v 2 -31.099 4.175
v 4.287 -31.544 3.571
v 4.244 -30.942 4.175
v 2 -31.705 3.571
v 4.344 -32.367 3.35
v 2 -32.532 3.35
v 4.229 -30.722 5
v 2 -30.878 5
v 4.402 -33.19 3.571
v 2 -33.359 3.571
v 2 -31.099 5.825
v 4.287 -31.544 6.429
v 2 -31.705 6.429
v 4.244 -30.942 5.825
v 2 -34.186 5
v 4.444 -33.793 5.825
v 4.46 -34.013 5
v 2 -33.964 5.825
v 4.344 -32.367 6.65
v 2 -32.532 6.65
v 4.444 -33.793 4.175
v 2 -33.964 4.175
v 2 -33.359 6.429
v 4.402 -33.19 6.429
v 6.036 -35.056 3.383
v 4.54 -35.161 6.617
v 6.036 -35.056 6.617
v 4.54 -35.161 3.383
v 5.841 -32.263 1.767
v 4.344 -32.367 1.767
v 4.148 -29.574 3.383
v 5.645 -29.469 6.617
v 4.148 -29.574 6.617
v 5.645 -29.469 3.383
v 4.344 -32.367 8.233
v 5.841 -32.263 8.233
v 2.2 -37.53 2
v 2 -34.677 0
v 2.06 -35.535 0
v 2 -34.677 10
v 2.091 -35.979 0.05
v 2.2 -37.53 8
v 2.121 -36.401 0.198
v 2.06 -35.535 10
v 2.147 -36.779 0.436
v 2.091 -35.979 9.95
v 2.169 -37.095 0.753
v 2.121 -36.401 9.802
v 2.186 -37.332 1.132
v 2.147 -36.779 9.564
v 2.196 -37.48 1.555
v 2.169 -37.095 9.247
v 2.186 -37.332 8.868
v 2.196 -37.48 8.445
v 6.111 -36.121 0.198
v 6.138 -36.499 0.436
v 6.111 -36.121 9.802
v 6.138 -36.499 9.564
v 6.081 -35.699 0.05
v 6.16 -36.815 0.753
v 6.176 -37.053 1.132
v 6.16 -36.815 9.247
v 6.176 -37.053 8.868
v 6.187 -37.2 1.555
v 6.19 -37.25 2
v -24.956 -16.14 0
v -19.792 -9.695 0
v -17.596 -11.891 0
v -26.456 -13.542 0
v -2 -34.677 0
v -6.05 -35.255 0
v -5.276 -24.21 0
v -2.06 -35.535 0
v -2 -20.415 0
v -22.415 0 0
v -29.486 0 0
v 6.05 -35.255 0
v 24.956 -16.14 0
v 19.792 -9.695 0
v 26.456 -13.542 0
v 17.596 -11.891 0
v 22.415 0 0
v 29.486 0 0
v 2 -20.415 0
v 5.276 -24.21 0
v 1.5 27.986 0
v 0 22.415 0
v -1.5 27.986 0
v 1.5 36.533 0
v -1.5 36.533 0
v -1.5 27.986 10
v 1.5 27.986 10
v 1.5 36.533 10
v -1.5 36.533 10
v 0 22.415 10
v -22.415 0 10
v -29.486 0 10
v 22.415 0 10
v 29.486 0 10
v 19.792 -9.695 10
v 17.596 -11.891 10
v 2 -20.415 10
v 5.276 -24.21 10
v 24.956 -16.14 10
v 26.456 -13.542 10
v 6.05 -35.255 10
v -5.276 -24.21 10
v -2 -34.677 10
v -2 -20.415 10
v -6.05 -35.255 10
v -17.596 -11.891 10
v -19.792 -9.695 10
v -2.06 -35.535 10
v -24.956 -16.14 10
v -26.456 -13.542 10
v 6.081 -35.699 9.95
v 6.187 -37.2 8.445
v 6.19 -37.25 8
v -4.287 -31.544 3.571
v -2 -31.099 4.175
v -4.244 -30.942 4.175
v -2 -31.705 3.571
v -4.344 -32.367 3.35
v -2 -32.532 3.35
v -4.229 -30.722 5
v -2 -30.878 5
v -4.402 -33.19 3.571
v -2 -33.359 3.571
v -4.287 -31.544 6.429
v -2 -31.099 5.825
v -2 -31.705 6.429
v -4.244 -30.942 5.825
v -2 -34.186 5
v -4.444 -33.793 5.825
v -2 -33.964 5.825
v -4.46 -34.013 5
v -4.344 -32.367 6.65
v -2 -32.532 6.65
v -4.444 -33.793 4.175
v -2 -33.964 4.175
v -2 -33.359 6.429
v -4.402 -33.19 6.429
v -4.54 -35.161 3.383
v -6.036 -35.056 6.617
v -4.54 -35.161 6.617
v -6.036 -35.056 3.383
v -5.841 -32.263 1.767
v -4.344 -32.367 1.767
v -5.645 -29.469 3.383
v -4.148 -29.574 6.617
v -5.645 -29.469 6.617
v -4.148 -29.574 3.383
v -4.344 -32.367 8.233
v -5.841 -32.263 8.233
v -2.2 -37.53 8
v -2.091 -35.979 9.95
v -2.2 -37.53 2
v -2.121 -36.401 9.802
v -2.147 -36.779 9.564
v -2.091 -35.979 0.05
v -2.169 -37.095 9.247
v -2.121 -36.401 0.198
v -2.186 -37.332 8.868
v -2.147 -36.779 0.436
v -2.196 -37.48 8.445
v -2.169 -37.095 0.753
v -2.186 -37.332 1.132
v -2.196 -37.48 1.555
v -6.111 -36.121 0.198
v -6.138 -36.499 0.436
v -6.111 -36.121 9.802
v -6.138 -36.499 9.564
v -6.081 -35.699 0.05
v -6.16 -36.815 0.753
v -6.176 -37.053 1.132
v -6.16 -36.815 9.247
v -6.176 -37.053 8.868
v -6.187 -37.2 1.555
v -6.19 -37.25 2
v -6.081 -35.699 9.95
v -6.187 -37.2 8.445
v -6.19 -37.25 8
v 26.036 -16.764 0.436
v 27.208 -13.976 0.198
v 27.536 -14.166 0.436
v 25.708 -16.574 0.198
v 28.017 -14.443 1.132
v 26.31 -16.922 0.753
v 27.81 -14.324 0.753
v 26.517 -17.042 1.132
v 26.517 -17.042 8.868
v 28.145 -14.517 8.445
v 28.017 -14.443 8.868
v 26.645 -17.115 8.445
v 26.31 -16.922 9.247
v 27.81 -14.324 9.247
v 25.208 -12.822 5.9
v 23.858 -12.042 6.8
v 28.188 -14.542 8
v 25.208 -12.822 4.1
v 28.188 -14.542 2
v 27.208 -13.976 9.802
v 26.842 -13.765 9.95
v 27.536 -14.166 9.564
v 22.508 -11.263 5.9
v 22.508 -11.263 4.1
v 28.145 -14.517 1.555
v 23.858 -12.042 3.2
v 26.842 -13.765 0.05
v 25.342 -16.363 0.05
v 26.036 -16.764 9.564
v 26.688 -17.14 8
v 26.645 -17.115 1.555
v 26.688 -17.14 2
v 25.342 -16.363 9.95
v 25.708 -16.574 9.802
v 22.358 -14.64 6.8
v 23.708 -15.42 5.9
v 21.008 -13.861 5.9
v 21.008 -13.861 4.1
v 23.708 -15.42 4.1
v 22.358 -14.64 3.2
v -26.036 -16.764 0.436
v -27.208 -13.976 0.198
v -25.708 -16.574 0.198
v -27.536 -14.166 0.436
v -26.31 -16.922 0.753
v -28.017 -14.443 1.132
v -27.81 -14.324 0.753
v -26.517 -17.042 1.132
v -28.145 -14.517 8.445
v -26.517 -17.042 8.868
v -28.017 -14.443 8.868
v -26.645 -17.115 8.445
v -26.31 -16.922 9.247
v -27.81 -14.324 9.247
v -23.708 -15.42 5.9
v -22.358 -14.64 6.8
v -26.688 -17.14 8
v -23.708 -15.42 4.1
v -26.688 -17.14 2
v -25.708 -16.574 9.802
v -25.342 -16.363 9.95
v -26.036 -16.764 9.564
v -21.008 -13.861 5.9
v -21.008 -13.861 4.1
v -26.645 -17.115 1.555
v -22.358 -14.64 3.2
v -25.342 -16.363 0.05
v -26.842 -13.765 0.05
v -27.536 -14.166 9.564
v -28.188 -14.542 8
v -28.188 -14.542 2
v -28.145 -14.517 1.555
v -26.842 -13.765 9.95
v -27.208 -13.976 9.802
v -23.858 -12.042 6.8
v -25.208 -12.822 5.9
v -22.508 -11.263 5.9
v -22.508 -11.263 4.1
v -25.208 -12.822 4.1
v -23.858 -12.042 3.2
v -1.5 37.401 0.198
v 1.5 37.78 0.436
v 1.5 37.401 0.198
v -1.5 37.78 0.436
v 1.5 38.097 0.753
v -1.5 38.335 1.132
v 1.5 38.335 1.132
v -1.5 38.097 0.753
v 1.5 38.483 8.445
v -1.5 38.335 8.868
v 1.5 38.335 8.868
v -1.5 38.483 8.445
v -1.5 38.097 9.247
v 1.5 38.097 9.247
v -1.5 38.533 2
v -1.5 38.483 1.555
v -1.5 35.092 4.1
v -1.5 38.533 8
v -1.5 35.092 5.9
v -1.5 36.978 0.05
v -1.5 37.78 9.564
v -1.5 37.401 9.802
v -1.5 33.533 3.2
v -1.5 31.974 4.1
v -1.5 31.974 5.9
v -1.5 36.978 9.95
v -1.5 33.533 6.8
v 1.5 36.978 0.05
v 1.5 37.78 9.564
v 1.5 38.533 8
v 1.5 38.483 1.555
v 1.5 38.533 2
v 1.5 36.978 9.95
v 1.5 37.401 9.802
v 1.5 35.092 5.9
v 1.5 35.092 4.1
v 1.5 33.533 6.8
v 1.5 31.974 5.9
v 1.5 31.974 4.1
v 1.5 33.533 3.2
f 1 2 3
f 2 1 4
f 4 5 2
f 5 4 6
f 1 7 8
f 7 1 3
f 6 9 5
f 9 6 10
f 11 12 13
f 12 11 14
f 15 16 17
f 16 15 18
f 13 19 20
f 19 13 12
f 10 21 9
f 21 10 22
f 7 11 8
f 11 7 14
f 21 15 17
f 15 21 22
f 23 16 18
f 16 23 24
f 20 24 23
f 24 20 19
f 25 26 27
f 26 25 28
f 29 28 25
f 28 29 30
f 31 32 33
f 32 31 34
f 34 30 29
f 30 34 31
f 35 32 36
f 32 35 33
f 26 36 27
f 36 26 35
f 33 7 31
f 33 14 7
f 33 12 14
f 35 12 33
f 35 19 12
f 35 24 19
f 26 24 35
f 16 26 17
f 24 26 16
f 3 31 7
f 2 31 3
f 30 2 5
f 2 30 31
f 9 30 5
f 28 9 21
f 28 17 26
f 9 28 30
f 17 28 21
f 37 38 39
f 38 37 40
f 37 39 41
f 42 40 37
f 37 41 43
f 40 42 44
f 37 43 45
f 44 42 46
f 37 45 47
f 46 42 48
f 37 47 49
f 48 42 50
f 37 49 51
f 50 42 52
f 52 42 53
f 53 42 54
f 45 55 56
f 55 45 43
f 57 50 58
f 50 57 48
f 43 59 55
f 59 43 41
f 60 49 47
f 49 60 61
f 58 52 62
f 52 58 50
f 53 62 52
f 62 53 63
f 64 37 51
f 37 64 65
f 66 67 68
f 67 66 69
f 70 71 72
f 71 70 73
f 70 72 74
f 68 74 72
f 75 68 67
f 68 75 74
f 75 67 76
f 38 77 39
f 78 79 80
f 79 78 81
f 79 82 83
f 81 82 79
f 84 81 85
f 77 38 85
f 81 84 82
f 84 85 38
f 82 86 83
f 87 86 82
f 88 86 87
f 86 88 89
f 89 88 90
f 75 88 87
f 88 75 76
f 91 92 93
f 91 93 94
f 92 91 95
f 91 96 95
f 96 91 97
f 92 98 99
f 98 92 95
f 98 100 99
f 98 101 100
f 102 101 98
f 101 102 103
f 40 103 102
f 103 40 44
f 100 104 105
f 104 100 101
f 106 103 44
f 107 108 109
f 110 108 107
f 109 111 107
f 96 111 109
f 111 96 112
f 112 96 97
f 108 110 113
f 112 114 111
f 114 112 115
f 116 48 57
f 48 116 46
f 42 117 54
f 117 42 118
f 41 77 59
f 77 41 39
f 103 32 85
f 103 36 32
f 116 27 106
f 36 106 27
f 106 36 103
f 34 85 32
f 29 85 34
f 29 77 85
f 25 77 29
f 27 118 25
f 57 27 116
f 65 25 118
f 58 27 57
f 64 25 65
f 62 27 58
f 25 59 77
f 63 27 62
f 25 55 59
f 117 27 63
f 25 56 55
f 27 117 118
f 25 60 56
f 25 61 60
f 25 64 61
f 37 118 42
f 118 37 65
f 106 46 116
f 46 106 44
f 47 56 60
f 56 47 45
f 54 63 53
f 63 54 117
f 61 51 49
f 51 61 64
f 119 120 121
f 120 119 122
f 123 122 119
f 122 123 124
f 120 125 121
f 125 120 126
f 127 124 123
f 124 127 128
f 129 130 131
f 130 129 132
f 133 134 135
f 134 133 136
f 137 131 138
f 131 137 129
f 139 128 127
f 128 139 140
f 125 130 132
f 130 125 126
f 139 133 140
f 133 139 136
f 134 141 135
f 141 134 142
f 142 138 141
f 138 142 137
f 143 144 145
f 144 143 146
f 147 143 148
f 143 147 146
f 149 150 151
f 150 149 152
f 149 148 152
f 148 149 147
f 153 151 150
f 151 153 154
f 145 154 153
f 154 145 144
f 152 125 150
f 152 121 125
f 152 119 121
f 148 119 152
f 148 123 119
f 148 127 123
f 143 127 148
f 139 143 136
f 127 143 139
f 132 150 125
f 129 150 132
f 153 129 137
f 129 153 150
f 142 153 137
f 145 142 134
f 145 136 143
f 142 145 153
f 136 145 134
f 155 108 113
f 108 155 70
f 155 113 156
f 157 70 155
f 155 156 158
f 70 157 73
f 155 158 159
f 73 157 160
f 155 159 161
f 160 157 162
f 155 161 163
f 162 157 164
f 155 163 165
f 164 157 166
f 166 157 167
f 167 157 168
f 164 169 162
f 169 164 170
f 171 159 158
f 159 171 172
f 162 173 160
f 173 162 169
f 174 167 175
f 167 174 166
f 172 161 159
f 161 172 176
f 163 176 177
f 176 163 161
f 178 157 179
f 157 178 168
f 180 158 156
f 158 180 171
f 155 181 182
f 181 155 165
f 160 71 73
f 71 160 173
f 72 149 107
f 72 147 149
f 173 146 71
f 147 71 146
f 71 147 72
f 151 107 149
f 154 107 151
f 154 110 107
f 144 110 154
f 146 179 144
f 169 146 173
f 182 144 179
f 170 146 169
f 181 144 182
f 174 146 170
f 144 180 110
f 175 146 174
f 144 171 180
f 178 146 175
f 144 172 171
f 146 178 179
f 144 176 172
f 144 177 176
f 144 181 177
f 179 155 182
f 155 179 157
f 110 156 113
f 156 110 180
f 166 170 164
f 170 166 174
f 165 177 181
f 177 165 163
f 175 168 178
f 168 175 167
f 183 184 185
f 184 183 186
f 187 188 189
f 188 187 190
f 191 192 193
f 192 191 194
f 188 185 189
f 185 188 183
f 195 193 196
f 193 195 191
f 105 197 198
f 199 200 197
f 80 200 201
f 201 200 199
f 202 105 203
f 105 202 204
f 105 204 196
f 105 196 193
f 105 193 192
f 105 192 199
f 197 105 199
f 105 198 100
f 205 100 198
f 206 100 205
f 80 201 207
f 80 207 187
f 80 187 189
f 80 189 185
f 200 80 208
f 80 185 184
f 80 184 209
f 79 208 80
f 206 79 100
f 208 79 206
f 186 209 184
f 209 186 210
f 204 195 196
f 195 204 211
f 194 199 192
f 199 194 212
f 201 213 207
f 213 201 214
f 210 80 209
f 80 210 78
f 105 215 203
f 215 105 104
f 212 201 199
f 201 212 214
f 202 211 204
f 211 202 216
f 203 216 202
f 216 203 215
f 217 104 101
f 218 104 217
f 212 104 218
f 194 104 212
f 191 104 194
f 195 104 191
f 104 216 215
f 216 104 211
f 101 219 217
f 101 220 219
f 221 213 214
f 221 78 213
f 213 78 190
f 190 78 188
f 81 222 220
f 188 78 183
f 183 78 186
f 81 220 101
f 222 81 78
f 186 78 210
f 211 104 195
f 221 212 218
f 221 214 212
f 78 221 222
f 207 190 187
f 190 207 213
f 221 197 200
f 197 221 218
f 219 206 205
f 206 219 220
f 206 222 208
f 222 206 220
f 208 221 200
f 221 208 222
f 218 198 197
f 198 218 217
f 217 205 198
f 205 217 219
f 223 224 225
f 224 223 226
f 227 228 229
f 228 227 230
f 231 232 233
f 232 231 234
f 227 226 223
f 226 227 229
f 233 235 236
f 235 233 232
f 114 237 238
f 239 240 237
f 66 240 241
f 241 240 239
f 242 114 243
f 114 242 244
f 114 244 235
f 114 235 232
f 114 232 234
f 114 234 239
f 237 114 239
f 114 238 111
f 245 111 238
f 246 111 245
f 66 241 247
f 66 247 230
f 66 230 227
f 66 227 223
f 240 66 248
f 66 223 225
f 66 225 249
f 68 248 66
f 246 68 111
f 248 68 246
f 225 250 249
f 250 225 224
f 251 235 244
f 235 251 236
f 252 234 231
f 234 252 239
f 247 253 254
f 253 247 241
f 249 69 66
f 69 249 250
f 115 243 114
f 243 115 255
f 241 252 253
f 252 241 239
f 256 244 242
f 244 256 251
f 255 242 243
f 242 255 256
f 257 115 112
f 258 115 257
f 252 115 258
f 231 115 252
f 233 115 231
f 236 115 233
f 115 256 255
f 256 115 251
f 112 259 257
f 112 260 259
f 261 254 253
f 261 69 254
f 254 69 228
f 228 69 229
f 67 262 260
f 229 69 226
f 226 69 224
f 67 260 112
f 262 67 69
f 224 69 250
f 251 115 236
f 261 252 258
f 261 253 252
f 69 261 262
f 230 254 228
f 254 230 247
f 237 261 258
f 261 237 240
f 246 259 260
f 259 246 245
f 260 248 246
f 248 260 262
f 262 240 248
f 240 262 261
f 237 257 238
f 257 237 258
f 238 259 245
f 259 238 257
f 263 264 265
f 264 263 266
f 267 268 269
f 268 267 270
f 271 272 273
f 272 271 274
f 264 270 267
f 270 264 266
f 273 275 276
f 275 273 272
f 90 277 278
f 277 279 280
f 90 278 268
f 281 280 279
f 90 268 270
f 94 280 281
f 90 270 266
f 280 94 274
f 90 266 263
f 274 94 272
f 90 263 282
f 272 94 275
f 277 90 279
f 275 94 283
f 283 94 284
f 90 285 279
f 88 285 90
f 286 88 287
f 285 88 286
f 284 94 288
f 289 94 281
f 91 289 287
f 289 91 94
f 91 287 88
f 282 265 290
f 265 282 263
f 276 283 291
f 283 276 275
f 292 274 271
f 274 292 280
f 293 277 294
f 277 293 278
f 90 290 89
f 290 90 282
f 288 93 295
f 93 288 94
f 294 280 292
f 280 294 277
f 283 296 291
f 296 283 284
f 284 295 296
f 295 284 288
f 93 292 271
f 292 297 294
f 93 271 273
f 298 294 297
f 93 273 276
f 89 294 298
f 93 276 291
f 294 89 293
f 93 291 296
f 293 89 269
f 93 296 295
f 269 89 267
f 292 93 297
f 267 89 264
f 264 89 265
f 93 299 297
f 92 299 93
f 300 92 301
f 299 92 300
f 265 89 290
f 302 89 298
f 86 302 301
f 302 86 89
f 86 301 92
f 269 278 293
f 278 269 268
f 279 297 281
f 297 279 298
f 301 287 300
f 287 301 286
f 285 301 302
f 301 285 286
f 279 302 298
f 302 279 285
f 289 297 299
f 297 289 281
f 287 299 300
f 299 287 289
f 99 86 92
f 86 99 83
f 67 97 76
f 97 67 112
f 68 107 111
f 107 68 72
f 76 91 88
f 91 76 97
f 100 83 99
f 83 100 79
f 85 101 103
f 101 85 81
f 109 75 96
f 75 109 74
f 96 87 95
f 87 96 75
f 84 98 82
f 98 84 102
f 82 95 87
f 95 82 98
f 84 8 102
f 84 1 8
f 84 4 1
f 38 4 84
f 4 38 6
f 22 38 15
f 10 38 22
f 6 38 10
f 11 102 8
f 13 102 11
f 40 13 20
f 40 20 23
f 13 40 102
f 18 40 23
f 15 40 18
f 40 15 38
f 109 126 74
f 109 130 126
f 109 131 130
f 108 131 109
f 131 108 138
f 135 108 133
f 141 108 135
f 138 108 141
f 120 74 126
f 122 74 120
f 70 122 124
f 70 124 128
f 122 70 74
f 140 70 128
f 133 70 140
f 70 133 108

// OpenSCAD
// file: lib/sweep.scad
// sweep.scad
//
// This code is copied from
// https://github.com/openscad/list-comprehension-demos
// and
// https://github.com/openscad/scad-utils
// to make hangprinter repo self-contained
// It was included in order to make the worm drive parametric
// In future OpenSCAD (or other script CAD programs)
// worm drives should be will be more easily constructed without
// this user space defined sweep operation.
// See OpenSCAD discussion at:
// https://github.com/openscad/openscad/issues/114

// Look into files
// lists.scad
// X transformations.scad
// linalg.scad
// se3.scad
// so3.scad


// Include modules and fcts:

/// linalg.scad
function vec3(p) = len(p) < 3 ? concat(p,0) : p;
function vec4(p) = let (v3=vec3(p)) len(v3) < 4 ? concat(v3,1) : v3;
function take3(v) = [v[0],v[1],v[2]];
function tail3(v) = [v[3],v[4],v[5]];
function construct_Rt(R,t) = [concat(R[0],t[0]),concat(R[1],t[1]),concat(R[2],t[2]),[0,0,0,1]];

/// so3.scad

function se3_exp_2(t,w) = se3_exp_2_0(t,w,w*w);
function se3_exp_2_0(t,w,theta_sq) =
se3_exp_23(
	so3_exp_2(theta_sq),
	C = (1.0 - theta_sq/20) / 6,
	t=t,w=w);

// Taylor series expansions close to 0
function so3_exp_1(theta_sq) = [
	1 - 1/6*theta_sq,
	0.5
];

function rodrigues_so3_exp(w, A, B) = [
  [1.0 - B*(w[1]*w[1] + w[2]*w[2]), B*(w[0]*w[1]) - A*w[2],          B*(w[0]*w[2]) + A*w[1]],
  [B*(w[0]*w[1]) + A*w[2],          1.0 - B*(w[0]*w[0] + w[2]*w[2]), B*(w[1]*w[2]) - A*w[0]],
  [B*(w[0]*w[2]) - A*w[1],          B*(w[1]*w[2]) + A*w[0],          1.0 - B*(w[0]*w[0] + w[1]*w[1])]
];

function so3_exp_3_0(theta_deg, inv_theta) = [
	sin(theta_deg) * inv_theta,
	(1 - cos(theta_deg)) * (inv_theta * inv_theta)
];

/// se3.scad
function combine_se3_exp(w, ABt) = construct_Rt(rodrigues_so3_exp(w, ABt[0], ABt[1]), ABt[2]);
function se3_exp_1(t,w) = concat(
	so3_exp_1(w*w),
	[t + 0.5 * cross(w,t)]
);

function se3_exp_3(t,w) = se3_exp_3_0(t,w,sqrt(w*w)*180/PI,1/sqrt(w*w));

function se3_exp_23(AB,C,t,w) =
[AB[0], AB[1], t + AB[1] * cross(w,t) + C * cross(w,cross(w,t)) ];

function se3_exp_3_0(t,w,theta_deg,inv_theta) =
se3_exp_23(
	so3_exp_3_0(theta_deg = theta_deg, inv_theta = inv_theta),
	C = (1 - sin(theta_deg) * inv_theta) * (inv_theta * inv_theta),
t=t,w=w);

function se3_exp(mu) = se3_exp_0(t=take3(mu),w=tail3(mu)/180*PI);

function se3_exp_0(t,w) =
combine_se3_exp(w,
// Evaluate by Taylor expansion when near 0
	w*w < 1e-8
	? se3_exp_1(t,w)
	: w*w < 1e-6
	  ? se3_exp_2(t,w)
	  : se3_exp_3(t,w)
);


/// lists.scad
/*!
  Flattens a list one level:

  flatten([[0,1],[2,3]]) => [0,1,2,3]
*/
function flatten(list) = [ for (i = list, v = i) v ];
/*!
  Extracts a subarray from index begin (inclusive) to end (exclusive)

  subarray([1,2,3,4], 1, 2) => [2,3]
*/
function subarray(list,begin=0,end=-1) = [
    let(end = end < 0 ? len(list) : end)
      for (i = [begin : 1 : end-1])
        list[i]
];

/// transformations.scad
//********* Create modifying matrices ***************//
/*!
  Creates a rotation matrix

  xyz = euler angles = rz * ry * rx
  axis = rotation_axis * rotation_angle
*/
function rotation(xyz=undef, axis=undef) =
	xyz != undef && axis != undef ? undef :
	xyz == undef  ? se3_exp([0,0,0,axis[0],axis[1],axis[2]]) :
	len(xyz) == undef ? rotation(axis=[0,0,xyz]) :
	(len(xyz) >= 3 ? rotation(axis=[0,0,xyz[2]]) : identity4()) *
	(len(xyz) >= 2 ? rotation(axis=[0,xyz[1],0]) : identity4()) *
(len(xyz) >= 1 ? rotation(axis=[xyz[0],0,0]) : identity4());

/*!
  Creates a scaling matrix
*/
function scaling(v) = [
	[v[0],0,0,0],
	[0,v[1],0,0],
	[0,0,v[2],0],
	[0,0,0,1],
];

/*!
  Creates a translation matrix
*/
function translation(v) = [
	[1,0,0,v[0]],
	[0,1,0,v[1]],
	[0,0,1,v[2]],
	[0,0,0,1],
];


function project(x) = subarray(x,end=len(x)-1) / x[len(x)-1];

function transform(m, list) = [for (p=list) project(m * vec4(p))];

function to_3d(list) = [ for(v = list) vec3(v) ];

module sweep(shape, path_transforms, closed=false) {

    pathlen = len(path_transforms);
    segments = pathlen + (closed ? 0 : -1);
    shape3d = to_3d(shape);

    function sweep_points() =
      flatten([for (i=[0:pathlen-1])
        transform(path_transforms[i], shape3d)]);

    function loop_faces() = [let (facets=len(shape3d))
        for(s=[0:segments-1], i=[0:facets-1])
          [(s%pathlen) * facets + i,
           (s%pathlen) * facets + (i + 1) % facets,
           ((s + 1) % pathlen) * facets + (i + 1) % facets,
           ((s + 1) % pathlen) * facets + i]];

    bottom_cap = closed ? [] : [[for (i=[len(shape3d)-1:-1:0]) i]];
    top_cap = closed ? [] : [
      [for (i=[0:len(shape3d)-1])
        i+len(shape3d)*(pathlen-1)]];
    polyhedron(points = sweep_points(),
               faces  = concat(loop_faces(),
                               bottom_cap,
                               top_cap),
               convexity=5);
}
// file: ram_1000_3dpotter.scad
include <lib/parameters.scad>
use <lib/util.scad>

ram_1000_3dpotter();
module ram_1000_3dpotter(){
  lift_tube = 60;
  tube_height = 325;
  tube_inner_d = Ram_1000_3dpotter_tube_inner_d;
  tube_outer_d = Ram_1000_3dpotter_tube_outer_d;
  translate([0,0,lift_tube])
    color([0.9,0.9,0.9], 0.4)
      difference(){
        cylinder(d = tube_outer_d, h=tube_height, $fn=10*4);
        translate([0,0,-1])
          cylinder(d = tube_inner_d, h= tube_height+2, $fn=10*4);
      }

  color([0.15,0.15,0.15])
    difference(){
      translate([0,0,lift_tube-36])
        cylinder(d=70, h=36);
      end_r = 35.7/2;
      circle_r = 47;
      translate([0,0,lift_tube-36])
        rotate_extrude()
          translate([circle_r+end_r,0])
            circle(r=circle_r);
    }

  color([0.93,0.1,0.1])
    cylinder(d1 = 6, d2 = 19, h = 24);

  shim_height = 17;
  color([0.15,0.15,0.15])
    translate([0,0,tube_height + lift_tube])
      cylinder(d = tube_outer_d + 3, h = shim_height);

  color([0.5,0.5,0.5])
    translate([-80/2, -80/2, lift_tube + tube_height + shim_height])
      cube([80, 97, Nema23_cube_width]);
  translate([-Nema23_cube_height-80/2, 97-80/2-Nema23_cube_width/2, lift_tube + tube_height + shim_height + Nema23_cube_width/2])
    rotate([0,90,0])
      Nema23();

  topshim_height = 10;
  color([0.6,0.6,0.6])
    translate([0,0,lift_tube + tube_height + shim_height + Nema23_cube_width])
      cylinder(d=62, h=topshim_height);
  w = Ram_1000_3dpotter_top_square_width;
  color([0.6,0.6,0.6])
    rotate([0,0,45])
      translate([-w/2, -w/2, lift_tube + tube_height + shim_height + Nema23_cube_width])
        cube([w, w, 300]);

}
// file: lib/parameters.scad
// Parameters shared between modules
Base_th = 2;
Beam_width = 15;
Wiggle = 0.25;
Fat_beam_width = Beam_width + Wiggle;
Beam_length = 400;
Wall_th = 2.5;
Min_beam_width = 12.5;
Max_beam_width = 17.5;
Zip_th = 2;
Zip_h = Zip_th + Max_beam_width - Min_beam_width;
Zip_w = 5.0;
Nema17_cube_width          = 42.43;
Nema17_screw_hole_width    = 43.74; // Opposite corner screws
Nema17_ring_diameter       = 22;
Nema17_cube_height         = 39.36;
Nema17_shaft_height        = 63.65;
Nema17_ring_height         = 2;
Nema17_shaft_radius        = 5/2;

Nema23_cube_width          = 56.4;
Nema23_cube_height         = 54.5;
Nema23_shaft_height        = 100;
Nema23_screw_hole_width    = 66.31; // Opposite corner screws
b608_outer_dia = 22.2;
b608_width = 7.05;
b608_bore_r = 4;
b608_vgroove_big_r = b608_outer_dia/2 + 2.5;
b608_vgroove_small_r = b608_outer_dia/2 + 0.5;
b608_ugroove_big_r = b608_vgroove_big_r;
b608_ugroove_small_r = b608_vgroove_small_r;
Gap_between_sandwich_and_plate = 1.5 + Base_th; // 1.5 mm for wiggle
Motor_bracket_flerp_r = 6;
Motor_bracket_flerp = 14;
Motor_bracket_cw = Nema17_cube_width + 6;
Motor_bracket_att_ang = 50;
Mounting_screw_d = 3.5;
Mounting_screw_head_d = 14;
Spool_outer_wall_th = 4;

// Corner clamp parameters
Cc_l1 = (Fat_beam_width+2*Wall_th)*2*sqrt(3);
Cc_rad_b = 4;
Cc_action_point_from_mid = Cc_l1/sqrt(3)-2*Cc_rad_b-7;
Cc_plastic_length = sqrt(Cc_action_point_from_mid*Cc_action_point_from_mid
                       - (Cc_action_point_from_mid/2)*(Cc_action_point_from_mid/2));
Eyelet_extra_dist = 0.75;
Eyelet_diameter = 4.30;
Move_d_bearings_inwards = -2;

// The distance between the two action points on the mover
Sidelength = Beam_length + 2*Cc_plastic_length;

/////// Gear parameters ////////////
Circular_pitch = 262;
Motor_teeth = 10;
Gear_height = 21.4-3;
Motor_pitch                      = (Motor_teeth*Circular_pitch/360);
Motor_pitch_diametrial           = Motor_teeth/(2*Motor_pitch);
Motor_outer_radius               = Motor_pitch + 1/Motor_pitch_diametrial;
Spool_teeth = 100;
Spool_r = 75;
Spool_height = 8;
Spool_pitch                      = (Spool_teeth*Circular_pitch/360);
Spool_pitch_diametrial           = Spool_teeth/(2*Spool_pitch);
Spool_outer_radius               = Spool_pitch + 1/Spool_pitch_diametrial;
Sep_disc_radius = (161.83+1)/2; // Made to match 255 teeth gt2 pulley + 1
Motor_bracket_depth = Gear_height+1+7+Nema17_ring_height+1+Gap_between_sandwich_and_plate;
Spool_core_flerp0 = 16+3;

/////// Lineroller parameters ////////////
b623_width  = 4;
b623_bore_r = 3/2;
b623_big_ugroove_big_r = (12+3)/2;
b623_big_ugroove_small_r = (10+3)/2;
b623_outer_dia = 10;
b623_ugroove_room_to_grow_r = 1.1;
b608_ugroove_room_to_grow_r = 1.1;
b623_flange_dia = 11.5;
b623_flange_room_to_grow_r = 0.5;

Depth_of_roller_base = 18;
Roller_flerp = 6;
Roller_l = 42;
Roller_fl = (Roller_l - Depth_of_roller_base)/2;

Line_roller_wall_th = 5;

Line_roller_ABC_winch_h =  Gap_between_sandwich_and_plate
                           + Sep_disc_radius
                           - Spool_r
                           + Depth_of_roller_base/2
                           + b608_vgroove_small_r;

Ptfe_r = 2.1;
Roller_base_r = 8;
Screw_h = 2;
Screw_head_h = 2;
M3_screw_head_d = 5.8;
Spool_center_bearing_wall_th = 5;
Corner_clamp_bearings_center_to_center = max(15, (b623_big_ugroove_big_r + b623_ugroove_room_to_grow_r)*2 + 5);

//// Lineroller anchor parameters /////

Front_bearing_x = -5 - 5;
Move_tower = -12.2;
Lower_bearing_z = 13;
Higher_bearing_z = Lower_bearing_z + Corner_clamp_bearings_center_to_center;

//// Cable Clamp parameters /////
Bit_width = 12;
Cable_r=2.5;

// Belt drive parameters
GT2_belt_width = 6.5;
GT2_gear_height = GT2_belt_width + 2;
GT2_motor_gear_height = 16;
GT2_motor_gear_outer_dia = 16;
GT2_spool_gear_outer_dia = 161.82; // Echoed from GT2_spool_gear.scad
GT2_spool_gear_teeth = 255;
GT2_motor_gear_teeth = 20;
Torx_depth = GT2_gear_height/2;
Belt_roller_h = 56;
Belt_thickness = 1.4;

Belt_roller_space_between_walls = 2*b623_width + 0.8;
Belt_roller_wall_th = (Depth_of_roller_base - Belt_roller_space_between_walls)/2+2;
Belt_roller_top_adj_screw_x = Depth_of_roller_base/2-3.7;
Belt_roller_top_adj_screw_y = Belt_roller_space_between_walls/2+2;
Belt_roller_containing_cube_ywidth = Belt_roller_space_between_walls+8.5;
Belt_roller_containing_cube_xwidth = 14;
Belt_roller_insert_h = 18;

Sandwich_ABC_width = 2*(1+Spool_height) + GT2_gear_height;
Sandwich_D_width = 4*(1+Spool_height) + GT2_gear_height;
Spool_core_halve_width = 14.3;
Spool_core_impression_in_spool_cover = 0;
Spool_cover_bottom_th = 1.5;
Spool_cover_shoulder = 2;
Spool_core_cover_adj = Spool_cover_shoulder+Spool_cover_bottom_th-Spool_core_impression_in_spool_cover;
Spool_core_tot_length = 136.458;
Spool_cover_outer_r = Sep_disc_radius + 2;
Gap_between_sep_disc_and_spool_cover = 0.55;

Smooth_rod_length_ABC = Sandwich_ABC_width + 2*(Spool_core_halve_width-Spool_core_impression_in_spool_cover + Spool_cover_bottom_th + Spool_cover_shoulder);
Smooth_rod_length_D = Sandwich_D_width + 2*(Spool_core_halve_width-Spool_core_impression_in_spool_cover + Spool_cover_bottom_th + Spool_cover_shoulder);
echo("Smooth_rod_length_ABC", Smooth_rod_length_ABC);
echo("Smooth_rod_length_D", Smooth_rod_length_D);

Spool_cover_tot_height = Spool_cover_bottom_th+Spool_cover_shoulder+1+Spool_height;
Spool_cover_D_left_tot_height = Spool_cover_shoulder+Spool_cover_bottom_th+1+Spool_height+1+Spool_height;

spd = Spool_height+GT2_gear_height;
// Horizontal_deflector_cube_y_size must be exact this number
// because we want to deflect AB-lines
// 60 degrees on the ceiling unit, and we want to put two
// deflectors in a row and get a distance between bearings
// that maintain the distance d when deflecting 60 degrees
Horizontal_deflector_cube_y_size = (2/sqrt(3))*spd;

Belt_roller_bearing_xpos = Sep_disc_radius + b623_outer_dia/2+Belt_thickness;


// Top plate parameters needed for layout slicer
Yshift_top_plate = -297.8;

Pen_holder_w = 55;
Pen_holder_rail_w = 36;
Pen_holder_bottom_th = 7;

u_width = 7;
Stick_extra = 5;
Stick_length = b623_big_ugroove_big_r*2 + 7*2 + 1*2 + Stick_extra;
Stick_d = 12.5;

Ram_1000_3dpotter_tube_inner_d = 70;
Ram_1000_3dpotter_tube_outer_d = Ram_1000_3dpotter_tube_inner_d + 2*3.3;
Ram_1000_3dpotter_top_square_width = 31.7;
// main file
include <lib/parameters.scad>
use <lib/util.scad>
use <ram_1000_3dpotter.scad>

ram_1000_3dpotter_top_holder();
module ram_1000_3dpotter_top_holder(){
  difference(){
    w = Ram_1000_3dpotter_top_square_width;
    union(){
      rotate([0,0,45])
        translate([-(w+2*5)/2,-(w+2*5)/2,0])
          cube([w+2*5,w+2*5,10]);
      for(k=[0,1]) mirror([k,0,0])
        translate([4/2+0.2,-1.8*Ram_1000_3dpotter_top_square_width/2-9,10])
          rotate([-atan(4/(1.8*Ram_1000_3dpotter_top_square_width)),90,0])
            difference(){
              rounded_cube2([10,18,4],2, $fn=7*4);
              translate([10/2,5,-1]){
                M3_screw();
                translate([0,0,3.5])
                  nut(h=3);
              }
            }

      for(ang=[0,240]) rotate([0,0,ang+60])
        translate([0,-Ram_1000_3dpotter_tube_outer_d/4.1-13,10])
          rotate([0,90,0])
            translate([0,0,-3/2])
              difference(){
                rounded_cube2([10,13,3],2, $fn=7*4);
                translate([10/2,5,-1])
                  cylinder(d=3.6, h=20);
              }
      rotate([0,0,120+60])
        translate([0,-Ram_1000_3dpotter_tube_outer_d/3-13,10])
          rotate([0,90,0])
            translate([0,0,-3/2])
              difference(){
                rounded_cube2([10,13,3],2, $fn=7*4);
                translate([10/2,5,-1])
                  cylinder(d=3.6, h=20);
              }
    }
    rotate([0,0,45])
      translate([-w/2,-w/2,-1])
        cube([w,w,12]);
    translate([-4/2, -Ram_1000_3dpotter_tube_outer_d,-1])
      cube([4, Ram_1000_3dpotter_tube_outer_d, 12]);
  }
}
